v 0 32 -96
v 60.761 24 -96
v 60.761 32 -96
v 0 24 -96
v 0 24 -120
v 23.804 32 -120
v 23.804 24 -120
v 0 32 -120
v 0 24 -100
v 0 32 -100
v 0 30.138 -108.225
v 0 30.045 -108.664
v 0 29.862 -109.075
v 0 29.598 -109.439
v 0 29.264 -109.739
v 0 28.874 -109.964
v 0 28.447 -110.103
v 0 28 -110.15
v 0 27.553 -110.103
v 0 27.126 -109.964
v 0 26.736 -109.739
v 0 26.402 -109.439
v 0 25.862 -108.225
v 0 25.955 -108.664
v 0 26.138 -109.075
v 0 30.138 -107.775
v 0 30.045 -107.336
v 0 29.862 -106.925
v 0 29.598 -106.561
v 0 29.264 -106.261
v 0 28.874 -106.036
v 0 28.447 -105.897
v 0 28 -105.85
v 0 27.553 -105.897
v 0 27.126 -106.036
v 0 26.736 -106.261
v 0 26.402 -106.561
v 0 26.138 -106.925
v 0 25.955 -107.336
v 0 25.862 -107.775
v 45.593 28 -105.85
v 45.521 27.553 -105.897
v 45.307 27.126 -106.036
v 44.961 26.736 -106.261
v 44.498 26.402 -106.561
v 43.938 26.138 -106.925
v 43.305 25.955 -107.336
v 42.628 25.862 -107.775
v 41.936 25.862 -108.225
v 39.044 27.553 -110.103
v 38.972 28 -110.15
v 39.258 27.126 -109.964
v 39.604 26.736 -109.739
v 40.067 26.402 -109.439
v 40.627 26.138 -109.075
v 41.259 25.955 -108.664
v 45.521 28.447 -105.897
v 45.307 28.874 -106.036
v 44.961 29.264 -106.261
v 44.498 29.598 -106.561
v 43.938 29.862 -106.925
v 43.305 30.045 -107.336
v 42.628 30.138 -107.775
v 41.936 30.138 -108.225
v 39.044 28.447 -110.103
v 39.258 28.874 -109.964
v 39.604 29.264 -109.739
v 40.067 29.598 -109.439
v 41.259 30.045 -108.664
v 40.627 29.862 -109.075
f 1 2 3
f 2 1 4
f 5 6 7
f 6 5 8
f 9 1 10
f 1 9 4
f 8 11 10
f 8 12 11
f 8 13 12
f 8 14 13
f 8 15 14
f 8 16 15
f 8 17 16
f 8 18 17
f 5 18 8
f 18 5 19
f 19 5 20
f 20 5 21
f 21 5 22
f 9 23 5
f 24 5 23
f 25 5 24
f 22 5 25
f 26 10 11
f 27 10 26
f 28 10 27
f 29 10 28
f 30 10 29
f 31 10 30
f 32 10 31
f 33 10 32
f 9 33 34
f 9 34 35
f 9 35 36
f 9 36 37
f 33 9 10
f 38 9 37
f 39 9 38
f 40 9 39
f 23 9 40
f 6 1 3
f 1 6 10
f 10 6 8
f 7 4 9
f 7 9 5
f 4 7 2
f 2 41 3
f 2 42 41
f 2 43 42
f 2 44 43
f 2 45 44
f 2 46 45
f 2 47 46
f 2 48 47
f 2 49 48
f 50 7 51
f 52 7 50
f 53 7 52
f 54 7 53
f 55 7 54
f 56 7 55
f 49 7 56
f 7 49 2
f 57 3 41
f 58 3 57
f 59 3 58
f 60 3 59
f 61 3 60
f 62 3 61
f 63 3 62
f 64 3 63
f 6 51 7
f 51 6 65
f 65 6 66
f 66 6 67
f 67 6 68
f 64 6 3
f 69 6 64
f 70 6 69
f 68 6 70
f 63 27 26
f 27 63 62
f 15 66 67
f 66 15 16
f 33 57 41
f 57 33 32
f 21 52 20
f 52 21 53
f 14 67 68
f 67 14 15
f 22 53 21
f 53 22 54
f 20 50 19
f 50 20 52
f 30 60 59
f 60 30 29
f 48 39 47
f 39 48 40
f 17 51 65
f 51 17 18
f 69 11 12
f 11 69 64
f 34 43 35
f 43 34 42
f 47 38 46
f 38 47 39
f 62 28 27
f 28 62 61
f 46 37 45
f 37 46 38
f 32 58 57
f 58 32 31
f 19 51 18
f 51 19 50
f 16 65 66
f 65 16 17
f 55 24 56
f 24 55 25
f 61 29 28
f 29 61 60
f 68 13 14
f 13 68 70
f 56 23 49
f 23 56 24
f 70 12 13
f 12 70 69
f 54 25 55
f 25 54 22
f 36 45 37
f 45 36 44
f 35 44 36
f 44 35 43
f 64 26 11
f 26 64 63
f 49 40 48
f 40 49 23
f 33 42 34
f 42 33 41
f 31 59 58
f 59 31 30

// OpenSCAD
// bottom left part of chimney GR
color("salmon")
difference() {
union() {
    translate([0,24,-120])
    cube([65,8,24]);
}
    // top clean up
    translate([-1,20,-96])
    cube([75,60,30]);

    // bottom clean up
    translate([0,20,-150])
    cube([50,60,30]);

    // back clean up
    translate([-20,20,-140])
    cube([20,50,40]);

    // angle clean up
    translate([70,23,-90])
    rotate([0,147,0])
    cube([65,40,30]);

    // left hole
    translate([-4,28,-108])
    rotate([0,90,0])
    cylinder(r=2.15,60, $fn=30);
}
